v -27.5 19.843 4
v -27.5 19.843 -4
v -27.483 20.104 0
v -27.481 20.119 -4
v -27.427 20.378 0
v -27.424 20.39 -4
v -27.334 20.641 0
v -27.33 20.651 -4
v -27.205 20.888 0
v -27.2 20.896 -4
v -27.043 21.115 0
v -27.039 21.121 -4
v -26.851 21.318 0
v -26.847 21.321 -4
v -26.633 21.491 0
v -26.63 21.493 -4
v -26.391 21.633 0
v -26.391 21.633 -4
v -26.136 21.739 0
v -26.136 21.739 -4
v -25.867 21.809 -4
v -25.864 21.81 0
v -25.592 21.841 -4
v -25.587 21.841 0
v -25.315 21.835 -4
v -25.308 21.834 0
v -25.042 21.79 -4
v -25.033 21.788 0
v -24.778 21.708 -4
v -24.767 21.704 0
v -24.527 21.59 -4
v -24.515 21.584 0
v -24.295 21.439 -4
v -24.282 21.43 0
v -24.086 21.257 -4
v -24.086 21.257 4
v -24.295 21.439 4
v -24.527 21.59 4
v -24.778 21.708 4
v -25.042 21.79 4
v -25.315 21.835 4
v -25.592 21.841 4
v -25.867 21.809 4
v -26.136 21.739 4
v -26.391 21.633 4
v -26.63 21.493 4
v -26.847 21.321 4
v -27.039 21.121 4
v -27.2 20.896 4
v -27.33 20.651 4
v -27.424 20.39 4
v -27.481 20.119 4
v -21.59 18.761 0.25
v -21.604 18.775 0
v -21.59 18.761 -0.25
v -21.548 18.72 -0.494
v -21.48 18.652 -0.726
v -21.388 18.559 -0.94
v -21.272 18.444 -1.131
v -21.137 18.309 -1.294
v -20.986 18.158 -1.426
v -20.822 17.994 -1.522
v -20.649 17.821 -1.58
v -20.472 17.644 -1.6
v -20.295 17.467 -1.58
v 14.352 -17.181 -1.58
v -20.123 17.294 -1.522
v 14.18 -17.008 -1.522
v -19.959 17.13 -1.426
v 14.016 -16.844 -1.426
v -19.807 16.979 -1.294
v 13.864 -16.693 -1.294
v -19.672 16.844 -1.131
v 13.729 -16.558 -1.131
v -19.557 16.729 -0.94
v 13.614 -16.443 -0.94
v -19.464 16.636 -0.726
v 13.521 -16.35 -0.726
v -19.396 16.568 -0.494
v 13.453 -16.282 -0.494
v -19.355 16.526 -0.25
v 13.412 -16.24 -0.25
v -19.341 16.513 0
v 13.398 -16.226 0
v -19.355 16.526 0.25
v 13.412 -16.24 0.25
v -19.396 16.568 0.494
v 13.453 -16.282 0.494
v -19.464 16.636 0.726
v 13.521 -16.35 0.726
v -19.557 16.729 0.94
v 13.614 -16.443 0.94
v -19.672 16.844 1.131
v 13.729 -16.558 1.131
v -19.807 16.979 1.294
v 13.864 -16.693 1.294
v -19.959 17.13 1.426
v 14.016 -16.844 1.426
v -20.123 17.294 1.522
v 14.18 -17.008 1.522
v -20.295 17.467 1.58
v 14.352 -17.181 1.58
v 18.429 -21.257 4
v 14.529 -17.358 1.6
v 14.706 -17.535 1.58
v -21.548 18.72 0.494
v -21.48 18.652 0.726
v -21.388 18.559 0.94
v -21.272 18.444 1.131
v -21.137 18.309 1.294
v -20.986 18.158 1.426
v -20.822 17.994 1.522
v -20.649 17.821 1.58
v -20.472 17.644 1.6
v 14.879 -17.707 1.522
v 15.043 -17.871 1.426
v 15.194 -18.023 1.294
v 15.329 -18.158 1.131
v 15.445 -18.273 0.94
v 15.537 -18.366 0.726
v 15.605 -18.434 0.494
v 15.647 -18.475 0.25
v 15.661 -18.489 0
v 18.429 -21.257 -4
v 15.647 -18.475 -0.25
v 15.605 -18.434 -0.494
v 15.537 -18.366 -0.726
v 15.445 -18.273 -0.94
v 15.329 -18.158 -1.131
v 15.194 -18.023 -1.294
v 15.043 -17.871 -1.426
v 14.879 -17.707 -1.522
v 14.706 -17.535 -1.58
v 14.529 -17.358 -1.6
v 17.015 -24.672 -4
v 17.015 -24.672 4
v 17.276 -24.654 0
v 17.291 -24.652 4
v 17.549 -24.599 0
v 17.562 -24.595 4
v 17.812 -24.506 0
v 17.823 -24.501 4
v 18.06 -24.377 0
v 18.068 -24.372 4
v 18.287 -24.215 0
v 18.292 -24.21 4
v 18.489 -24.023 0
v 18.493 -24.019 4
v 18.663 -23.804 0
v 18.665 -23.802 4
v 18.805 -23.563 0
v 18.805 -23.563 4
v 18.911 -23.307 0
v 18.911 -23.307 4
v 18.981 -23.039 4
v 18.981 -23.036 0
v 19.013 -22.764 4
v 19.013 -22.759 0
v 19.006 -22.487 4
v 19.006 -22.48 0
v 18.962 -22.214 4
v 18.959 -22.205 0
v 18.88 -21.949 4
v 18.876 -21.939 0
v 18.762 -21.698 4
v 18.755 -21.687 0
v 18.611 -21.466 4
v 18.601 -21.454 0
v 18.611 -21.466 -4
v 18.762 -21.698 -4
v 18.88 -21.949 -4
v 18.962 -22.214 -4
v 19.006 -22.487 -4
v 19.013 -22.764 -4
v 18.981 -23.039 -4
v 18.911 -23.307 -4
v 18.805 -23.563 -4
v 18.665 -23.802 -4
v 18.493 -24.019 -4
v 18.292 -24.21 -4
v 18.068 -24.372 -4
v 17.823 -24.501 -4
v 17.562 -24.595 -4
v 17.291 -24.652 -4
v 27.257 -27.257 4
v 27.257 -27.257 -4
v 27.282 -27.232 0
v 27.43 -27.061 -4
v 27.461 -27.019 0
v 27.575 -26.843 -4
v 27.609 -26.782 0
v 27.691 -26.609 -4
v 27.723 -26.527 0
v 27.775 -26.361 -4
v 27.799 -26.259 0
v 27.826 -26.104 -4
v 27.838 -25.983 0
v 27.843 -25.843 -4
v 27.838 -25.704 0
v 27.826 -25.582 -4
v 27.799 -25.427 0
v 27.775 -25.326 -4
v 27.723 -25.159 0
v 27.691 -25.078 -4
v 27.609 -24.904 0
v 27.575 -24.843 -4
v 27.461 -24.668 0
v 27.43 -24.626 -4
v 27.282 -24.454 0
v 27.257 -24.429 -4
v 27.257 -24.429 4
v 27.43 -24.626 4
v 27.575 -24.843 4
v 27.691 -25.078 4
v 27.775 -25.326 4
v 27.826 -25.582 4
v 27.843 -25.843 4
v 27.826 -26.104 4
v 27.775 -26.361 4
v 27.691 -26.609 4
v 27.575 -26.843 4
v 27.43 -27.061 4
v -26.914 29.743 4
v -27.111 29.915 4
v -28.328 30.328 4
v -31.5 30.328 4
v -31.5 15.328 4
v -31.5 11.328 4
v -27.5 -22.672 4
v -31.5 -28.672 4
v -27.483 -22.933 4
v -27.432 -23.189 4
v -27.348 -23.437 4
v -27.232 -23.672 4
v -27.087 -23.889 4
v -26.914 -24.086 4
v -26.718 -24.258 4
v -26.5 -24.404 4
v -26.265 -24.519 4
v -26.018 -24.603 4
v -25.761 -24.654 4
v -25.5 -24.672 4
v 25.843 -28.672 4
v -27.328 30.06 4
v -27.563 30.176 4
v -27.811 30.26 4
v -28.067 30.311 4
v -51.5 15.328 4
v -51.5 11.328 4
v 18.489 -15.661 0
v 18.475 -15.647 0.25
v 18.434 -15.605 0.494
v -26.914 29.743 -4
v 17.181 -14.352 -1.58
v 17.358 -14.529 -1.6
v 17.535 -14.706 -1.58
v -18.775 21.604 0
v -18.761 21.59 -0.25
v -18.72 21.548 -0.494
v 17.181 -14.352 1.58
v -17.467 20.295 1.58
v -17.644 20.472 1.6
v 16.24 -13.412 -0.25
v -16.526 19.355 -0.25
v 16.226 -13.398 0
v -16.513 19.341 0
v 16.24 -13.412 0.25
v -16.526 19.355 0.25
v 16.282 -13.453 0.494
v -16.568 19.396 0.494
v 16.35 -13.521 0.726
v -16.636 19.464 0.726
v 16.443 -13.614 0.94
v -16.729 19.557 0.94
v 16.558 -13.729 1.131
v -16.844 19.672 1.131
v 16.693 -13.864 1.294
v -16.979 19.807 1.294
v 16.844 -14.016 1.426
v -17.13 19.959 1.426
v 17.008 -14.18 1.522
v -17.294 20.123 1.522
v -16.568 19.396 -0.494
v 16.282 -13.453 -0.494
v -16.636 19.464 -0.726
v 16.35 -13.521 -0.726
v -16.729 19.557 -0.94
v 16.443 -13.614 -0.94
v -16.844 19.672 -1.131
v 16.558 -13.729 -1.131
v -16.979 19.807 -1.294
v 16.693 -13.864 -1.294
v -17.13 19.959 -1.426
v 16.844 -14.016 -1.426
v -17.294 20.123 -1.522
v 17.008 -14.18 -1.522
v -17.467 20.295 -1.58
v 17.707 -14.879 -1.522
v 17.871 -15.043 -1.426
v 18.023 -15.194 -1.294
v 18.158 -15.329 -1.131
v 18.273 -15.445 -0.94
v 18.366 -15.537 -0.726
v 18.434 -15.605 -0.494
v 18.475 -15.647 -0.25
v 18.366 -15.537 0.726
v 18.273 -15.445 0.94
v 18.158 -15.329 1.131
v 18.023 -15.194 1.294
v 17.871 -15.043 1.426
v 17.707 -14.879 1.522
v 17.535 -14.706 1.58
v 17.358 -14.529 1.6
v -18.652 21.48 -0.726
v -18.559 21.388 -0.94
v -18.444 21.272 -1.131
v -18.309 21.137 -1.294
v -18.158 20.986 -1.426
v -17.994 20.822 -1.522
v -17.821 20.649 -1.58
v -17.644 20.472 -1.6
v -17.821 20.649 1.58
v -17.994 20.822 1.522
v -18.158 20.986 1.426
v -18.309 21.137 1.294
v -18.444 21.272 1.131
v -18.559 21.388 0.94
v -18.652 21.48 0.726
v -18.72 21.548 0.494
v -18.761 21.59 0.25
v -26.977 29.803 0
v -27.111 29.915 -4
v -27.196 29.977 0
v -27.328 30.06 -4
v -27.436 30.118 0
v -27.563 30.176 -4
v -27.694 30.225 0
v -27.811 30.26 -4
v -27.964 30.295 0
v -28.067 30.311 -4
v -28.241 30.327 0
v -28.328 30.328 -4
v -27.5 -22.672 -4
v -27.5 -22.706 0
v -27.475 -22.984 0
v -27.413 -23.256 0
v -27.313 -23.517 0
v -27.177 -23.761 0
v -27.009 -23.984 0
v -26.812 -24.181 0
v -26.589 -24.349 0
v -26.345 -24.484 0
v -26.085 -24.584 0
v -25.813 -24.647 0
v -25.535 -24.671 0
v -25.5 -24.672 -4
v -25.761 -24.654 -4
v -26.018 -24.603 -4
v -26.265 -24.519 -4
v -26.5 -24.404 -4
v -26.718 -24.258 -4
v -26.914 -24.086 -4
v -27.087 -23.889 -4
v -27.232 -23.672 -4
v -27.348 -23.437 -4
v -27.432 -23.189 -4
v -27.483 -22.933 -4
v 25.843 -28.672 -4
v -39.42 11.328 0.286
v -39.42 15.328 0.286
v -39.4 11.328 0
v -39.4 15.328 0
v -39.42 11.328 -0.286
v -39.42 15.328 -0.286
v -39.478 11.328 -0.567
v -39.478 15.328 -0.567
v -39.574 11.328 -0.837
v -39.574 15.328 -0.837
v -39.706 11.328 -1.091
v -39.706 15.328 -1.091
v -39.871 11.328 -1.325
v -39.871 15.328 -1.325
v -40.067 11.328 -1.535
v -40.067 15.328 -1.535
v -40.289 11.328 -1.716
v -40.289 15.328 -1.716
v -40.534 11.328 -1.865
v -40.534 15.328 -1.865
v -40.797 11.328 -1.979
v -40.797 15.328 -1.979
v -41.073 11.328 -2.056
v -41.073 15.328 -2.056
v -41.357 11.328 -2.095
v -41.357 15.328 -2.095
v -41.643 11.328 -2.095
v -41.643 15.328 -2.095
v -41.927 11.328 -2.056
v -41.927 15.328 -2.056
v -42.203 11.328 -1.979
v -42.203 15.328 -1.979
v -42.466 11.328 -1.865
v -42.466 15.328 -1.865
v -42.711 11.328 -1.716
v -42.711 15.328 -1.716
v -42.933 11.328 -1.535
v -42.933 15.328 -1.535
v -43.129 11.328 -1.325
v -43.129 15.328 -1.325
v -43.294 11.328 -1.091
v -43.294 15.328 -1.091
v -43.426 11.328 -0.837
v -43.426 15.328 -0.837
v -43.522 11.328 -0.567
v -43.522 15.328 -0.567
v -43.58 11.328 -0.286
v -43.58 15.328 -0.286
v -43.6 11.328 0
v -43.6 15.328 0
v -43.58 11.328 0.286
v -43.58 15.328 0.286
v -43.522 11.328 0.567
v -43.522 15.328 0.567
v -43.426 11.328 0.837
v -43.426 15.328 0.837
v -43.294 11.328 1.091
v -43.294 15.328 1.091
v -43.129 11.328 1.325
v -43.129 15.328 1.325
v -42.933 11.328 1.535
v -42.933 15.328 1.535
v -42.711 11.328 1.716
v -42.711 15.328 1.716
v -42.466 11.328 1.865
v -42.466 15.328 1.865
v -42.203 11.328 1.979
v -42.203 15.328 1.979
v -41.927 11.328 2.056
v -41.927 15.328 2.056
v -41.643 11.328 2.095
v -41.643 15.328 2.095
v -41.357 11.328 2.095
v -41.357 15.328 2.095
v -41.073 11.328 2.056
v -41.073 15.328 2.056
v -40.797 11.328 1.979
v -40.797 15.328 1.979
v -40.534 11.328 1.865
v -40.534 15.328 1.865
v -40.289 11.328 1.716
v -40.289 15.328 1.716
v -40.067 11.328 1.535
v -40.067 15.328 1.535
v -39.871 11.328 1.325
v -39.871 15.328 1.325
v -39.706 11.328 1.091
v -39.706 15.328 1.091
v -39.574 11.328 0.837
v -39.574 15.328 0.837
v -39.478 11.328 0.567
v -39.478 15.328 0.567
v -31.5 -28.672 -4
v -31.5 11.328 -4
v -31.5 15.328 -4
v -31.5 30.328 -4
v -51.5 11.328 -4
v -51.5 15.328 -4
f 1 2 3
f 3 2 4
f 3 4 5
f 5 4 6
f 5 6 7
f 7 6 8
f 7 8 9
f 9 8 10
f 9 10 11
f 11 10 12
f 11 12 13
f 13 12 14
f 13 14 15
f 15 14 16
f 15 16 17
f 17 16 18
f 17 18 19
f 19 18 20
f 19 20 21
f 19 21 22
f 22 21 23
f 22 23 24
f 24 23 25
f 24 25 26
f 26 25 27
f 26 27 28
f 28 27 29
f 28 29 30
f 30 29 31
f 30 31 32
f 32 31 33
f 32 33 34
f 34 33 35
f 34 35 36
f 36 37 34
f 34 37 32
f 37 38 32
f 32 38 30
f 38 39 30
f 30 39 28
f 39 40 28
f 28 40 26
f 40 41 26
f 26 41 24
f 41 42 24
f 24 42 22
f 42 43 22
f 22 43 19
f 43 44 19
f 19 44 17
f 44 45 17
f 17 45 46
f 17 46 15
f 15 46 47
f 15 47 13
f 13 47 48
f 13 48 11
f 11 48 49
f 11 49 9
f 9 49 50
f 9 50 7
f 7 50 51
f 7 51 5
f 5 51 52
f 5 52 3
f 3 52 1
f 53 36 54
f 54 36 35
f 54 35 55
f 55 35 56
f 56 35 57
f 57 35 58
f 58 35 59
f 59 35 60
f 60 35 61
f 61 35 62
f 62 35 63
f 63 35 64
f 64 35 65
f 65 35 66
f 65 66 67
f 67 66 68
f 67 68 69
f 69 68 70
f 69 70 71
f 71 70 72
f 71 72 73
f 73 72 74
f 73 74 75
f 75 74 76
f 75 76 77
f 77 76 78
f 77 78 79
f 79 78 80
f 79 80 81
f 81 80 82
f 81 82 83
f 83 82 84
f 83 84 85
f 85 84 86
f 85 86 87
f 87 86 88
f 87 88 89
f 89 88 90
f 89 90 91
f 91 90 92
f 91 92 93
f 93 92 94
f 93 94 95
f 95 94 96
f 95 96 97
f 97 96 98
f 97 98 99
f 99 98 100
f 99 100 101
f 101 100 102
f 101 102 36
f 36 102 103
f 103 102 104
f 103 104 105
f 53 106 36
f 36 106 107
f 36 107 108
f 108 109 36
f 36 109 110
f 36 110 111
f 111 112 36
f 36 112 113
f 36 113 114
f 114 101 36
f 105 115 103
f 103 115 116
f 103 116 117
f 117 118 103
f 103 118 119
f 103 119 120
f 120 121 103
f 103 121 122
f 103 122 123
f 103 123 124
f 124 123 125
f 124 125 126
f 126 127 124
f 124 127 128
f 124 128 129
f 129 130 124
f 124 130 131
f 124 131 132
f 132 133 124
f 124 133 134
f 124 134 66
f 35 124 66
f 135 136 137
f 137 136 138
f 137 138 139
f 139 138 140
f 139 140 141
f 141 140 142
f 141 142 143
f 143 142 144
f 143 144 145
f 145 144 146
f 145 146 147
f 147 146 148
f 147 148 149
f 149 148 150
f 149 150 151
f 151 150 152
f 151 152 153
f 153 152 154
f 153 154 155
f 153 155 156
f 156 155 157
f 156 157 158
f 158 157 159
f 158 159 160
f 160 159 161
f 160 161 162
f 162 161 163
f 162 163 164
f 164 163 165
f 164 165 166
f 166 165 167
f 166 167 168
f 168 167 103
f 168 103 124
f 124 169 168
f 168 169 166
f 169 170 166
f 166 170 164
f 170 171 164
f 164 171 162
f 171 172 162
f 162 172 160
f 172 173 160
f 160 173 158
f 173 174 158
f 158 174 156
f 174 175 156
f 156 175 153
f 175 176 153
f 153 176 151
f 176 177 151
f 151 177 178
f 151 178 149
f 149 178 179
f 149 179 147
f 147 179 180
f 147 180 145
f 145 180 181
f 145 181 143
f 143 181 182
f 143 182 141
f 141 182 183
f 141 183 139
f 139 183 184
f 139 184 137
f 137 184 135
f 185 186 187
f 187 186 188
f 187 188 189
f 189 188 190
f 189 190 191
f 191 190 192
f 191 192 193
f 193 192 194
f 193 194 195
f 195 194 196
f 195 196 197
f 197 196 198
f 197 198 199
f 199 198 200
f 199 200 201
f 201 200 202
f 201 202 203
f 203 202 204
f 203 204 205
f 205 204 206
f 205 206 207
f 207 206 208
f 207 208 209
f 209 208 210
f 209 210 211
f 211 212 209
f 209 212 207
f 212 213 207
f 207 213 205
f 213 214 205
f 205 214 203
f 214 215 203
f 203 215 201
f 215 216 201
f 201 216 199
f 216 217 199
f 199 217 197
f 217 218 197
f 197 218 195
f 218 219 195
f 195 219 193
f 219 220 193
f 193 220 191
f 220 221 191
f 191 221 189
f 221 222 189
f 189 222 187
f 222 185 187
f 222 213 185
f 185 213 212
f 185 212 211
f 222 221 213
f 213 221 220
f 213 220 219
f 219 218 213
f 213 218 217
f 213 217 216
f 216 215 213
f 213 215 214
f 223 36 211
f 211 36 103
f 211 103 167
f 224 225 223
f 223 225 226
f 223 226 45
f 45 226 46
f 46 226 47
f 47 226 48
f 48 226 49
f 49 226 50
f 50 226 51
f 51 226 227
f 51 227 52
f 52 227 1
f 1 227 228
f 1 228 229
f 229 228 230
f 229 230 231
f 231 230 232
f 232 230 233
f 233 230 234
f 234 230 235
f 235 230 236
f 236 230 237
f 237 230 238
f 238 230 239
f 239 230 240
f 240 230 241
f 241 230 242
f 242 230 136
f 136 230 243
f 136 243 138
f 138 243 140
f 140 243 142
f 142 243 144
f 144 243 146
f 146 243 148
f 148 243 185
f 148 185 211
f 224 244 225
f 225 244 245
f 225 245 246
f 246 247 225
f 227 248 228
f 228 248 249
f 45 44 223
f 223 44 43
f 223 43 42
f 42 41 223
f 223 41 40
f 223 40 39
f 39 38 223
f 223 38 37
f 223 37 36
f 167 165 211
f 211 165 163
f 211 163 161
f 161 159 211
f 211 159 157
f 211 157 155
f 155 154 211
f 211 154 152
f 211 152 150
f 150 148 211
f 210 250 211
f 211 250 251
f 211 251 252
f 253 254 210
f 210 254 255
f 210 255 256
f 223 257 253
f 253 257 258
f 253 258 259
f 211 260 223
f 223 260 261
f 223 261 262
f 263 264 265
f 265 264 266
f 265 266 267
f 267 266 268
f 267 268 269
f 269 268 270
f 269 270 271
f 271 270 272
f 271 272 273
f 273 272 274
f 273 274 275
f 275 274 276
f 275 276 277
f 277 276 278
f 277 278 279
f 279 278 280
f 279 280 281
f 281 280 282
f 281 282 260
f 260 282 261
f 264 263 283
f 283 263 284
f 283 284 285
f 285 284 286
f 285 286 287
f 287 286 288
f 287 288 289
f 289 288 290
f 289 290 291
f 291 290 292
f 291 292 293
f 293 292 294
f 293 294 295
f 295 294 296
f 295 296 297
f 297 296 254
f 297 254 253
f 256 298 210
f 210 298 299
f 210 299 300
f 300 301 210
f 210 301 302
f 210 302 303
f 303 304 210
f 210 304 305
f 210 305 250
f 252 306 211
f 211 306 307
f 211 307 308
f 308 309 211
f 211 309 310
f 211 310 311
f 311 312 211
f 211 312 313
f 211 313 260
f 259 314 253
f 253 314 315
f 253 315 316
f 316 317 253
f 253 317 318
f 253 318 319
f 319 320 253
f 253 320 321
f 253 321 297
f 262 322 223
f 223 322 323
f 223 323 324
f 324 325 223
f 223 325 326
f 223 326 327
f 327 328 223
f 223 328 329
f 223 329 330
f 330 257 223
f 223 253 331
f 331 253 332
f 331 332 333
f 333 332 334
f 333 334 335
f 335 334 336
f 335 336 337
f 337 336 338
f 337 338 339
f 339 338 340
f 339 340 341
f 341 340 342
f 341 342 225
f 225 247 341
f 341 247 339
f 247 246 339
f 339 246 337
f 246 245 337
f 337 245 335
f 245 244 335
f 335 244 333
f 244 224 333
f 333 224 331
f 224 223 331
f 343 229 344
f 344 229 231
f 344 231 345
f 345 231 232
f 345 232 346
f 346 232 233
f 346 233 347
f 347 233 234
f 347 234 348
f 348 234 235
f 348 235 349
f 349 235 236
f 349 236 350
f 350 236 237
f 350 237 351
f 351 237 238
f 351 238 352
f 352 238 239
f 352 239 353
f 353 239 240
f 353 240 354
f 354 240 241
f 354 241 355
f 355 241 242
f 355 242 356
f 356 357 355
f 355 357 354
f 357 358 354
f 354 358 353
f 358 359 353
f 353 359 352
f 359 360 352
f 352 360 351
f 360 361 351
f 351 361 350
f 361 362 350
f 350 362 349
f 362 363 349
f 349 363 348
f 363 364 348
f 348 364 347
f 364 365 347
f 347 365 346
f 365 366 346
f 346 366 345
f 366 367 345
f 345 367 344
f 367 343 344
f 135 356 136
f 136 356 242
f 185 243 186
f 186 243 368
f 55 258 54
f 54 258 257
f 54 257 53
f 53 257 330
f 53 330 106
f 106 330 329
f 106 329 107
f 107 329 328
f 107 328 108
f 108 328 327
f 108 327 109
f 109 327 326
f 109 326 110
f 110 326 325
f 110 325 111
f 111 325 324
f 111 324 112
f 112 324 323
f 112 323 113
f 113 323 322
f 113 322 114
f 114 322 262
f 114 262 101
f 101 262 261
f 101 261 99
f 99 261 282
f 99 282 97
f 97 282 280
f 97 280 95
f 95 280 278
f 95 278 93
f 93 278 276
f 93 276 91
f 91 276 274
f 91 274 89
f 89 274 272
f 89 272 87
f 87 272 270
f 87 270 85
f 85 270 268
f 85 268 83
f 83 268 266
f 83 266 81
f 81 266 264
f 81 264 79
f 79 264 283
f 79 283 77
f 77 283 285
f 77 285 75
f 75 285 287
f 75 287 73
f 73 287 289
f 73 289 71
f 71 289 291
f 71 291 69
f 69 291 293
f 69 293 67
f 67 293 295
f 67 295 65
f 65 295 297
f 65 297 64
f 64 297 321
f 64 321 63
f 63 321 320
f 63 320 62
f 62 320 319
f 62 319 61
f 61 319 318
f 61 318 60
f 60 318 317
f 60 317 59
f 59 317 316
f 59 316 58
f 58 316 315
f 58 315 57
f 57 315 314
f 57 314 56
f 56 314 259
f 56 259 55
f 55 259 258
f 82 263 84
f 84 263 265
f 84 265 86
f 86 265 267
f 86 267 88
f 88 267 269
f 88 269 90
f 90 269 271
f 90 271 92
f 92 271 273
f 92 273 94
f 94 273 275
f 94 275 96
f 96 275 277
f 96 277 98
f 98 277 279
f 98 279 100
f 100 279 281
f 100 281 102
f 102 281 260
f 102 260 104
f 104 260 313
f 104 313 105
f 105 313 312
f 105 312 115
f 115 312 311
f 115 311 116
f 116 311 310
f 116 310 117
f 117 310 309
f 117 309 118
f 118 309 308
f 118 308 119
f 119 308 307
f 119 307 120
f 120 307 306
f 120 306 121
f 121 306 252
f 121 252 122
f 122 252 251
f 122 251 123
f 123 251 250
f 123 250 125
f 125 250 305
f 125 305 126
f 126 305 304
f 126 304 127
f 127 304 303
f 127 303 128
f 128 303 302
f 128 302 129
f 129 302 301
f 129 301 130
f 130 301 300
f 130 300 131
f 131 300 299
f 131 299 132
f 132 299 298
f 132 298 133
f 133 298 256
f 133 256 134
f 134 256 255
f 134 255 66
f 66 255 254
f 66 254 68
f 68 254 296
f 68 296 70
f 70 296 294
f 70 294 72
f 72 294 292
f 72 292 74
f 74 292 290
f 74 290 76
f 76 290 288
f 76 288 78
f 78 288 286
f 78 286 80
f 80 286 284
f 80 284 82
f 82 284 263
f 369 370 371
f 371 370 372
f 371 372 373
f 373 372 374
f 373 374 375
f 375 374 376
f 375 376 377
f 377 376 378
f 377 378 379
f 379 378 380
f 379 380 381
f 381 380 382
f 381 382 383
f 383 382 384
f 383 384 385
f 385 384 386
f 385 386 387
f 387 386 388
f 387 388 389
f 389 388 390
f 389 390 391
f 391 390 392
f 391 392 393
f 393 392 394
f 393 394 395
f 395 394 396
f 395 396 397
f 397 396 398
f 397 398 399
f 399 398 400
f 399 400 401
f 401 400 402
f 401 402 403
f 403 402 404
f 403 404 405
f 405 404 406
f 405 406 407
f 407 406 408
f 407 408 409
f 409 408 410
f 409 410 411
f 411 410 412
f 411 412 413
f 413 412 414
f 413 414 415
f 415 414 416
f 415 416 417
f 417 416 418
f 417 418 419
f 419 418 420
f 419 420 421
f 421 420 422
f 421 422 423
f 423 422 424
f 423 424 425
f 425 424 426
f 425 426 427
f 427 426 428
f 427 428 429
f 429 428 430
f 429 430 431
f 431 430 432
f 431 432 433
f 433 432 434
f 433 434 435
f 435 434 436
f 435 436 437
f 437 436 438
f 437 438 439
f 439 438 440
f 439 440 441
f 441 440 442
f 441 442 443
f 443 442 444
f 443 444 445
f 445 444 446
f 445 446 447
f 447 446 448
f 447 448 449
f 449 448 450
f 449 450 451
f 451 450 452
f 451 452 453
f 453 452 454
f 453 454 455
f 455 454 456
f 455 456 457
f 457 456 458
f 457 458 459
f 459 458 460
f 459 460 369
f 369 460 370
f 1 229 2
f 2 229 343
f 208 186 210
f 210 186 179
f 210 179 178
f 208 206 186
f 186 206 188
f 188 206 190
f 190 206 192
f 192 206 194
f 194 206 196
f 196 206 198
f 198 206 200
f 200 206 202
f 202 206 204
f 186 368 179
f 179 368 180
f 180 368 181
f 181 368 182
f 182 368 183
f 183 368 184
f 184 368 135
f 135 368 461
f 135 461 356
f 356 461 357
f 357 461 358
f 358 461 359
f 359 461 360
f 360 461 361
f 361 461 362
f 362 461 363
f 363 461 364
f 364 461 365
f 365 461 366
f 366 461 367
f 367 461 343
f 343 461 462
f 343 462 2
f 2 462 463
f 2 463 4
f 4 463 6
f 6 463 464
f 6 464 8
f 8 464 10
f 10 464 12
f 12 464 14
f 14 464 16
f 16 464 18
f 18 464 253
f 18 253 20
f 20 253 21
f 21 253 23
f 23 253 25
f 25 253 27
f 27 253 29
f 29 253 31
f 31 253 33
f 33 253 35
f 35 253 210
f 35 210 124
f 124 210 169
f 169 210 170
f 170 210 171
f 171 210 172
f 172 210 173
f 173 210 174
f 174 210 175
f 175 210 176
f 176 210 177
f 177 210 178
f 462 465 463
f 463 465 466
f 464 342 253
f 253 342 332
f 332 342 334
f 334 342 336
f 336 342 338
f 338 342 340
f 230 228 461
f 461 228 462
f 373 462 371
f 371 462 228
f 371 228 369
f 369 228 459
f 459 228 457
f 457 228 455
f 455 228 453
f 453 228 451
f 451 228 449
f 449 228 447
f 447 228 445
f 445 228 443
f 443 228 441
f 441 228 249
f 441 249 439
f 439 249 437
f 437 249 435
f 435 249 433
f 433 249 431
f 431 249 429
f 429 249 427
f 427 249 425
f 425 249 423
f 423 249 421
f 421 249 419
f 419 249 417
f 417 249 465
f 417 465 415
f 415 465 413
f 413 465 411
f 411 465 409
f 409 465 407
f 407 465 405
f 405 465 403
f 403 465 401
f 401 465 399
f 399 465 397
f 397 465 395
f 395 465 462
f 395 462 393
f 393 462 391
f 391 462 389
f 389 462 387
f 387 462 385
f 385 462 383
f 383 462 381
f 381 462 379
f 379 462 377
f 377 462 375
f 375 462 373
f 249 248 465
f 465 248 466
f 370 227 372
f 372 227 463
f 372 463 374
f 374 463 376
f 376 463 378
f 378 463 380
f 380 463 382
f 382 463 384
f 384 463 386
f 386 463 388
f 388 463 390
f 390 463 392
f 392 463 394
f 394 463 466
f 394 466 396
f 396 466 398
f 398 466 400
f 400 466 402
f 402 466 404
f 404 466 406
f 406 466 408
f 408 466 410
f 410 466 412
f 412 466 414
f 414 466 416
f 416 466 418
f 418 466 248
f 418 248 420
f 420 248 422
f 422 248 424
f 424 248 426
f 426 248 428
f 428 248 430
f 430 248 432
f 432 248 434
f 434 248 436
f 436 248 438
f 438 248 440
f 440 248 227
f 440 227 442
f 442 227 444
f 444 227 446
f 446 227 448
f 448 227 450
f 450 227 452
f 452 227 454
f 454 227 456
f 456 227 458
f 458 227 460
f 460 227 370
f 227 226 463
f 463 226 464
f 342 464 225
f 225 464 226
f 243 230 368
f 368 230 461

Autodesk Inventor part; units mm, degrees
ref_plane "YZ Plane" through (0, 0, 0) normal (1, 0, 0) x (0, 1, 0)
ref_plane "XZ Plane" through (0, 0, 0) normal (0, 1, 0) x (-1, 0, 0)
ref_plane "XY Plane" through (0, 0, 0) normal (0, 0, 1) x (1, 0, 0)
sketch "Sketch1" plane through (0, 0, 0) normal (0, 0, 1) x (1, 0, 0)
  line L0 (-27.5, 24.6716) -> (21.8431, -24.6716)
  line L1 (31.5, -28.6716) -> (-27.5, 30.3284)
  line L2 (-27.5, 30.3284) -> (-31.5, 30.3284)
  line L3 (31.5, -28.6716) -> (-31.5, -28.6716)
  line L4 (-27.5, -24.6716) -> (21.8431, -24.6716)
  line L5 (-27.5, 24.6716) -> (-27.5, -24.6716)
  line L6 (-31.5, 15.3284) -> (-51.5, 15.3284)
  line L7 (-51.5, 15.3284) -> (-51.5, 11.3284)
  line L8 (-51.5, 11.3284) -> (-31.5, 11.3284)
  line L9 (-31.5, 30.3284) -> (-31.5, 15.3284)
  line L10 (-31.5, 11.3284) -> (-31.5, -28.6716)
  point P0 (0, 0)
  point P1 (-27.5, 0)
  point P2 (0, -28.6716)
  dimension "d0" = 4
  dimension "d19" = 4
  dimension "d22" = 20
  dimension "d23" = 4
  dimension "d25" = 45
  dimension "d28" = 83.4386
  dimension "d29" = 4
  dimension "d30" = 4
  dimension "d35" = 40
extrude "Extrusion1" add sketch "Sketch1" along normal mid plane 8
sketch "Sketch5" plane through (-51.5, 15.3284, -4) normal (0, 1, 0) x (1, 0, 0)
  line L0 (20, -8) -> (20, 0) projected
  line L1 (0, 0) -> (20, 0) projected
  line L2 (0, -8) -> (0, 0) projected
  line L3 (20, -8) -> (0, -8) projected
  circle A0 centre (10, -4) radius 2.1
  point P0 (51.5, -4)
  point P1 (0, -4)
  dimension "d31" = 4.2
  dimension "d32" = 10
extrude "Extrusion4" cut sketch "Sketch5" against normal through all contours A0
sketch "Sketch6" plane through (-27.5, 30.3284, -4) normal (0.7071, 0.7071, 0) x (-0.7071, 0.7071, 0)
  circle A0 centre (-13.9386, 4) radius 1.6
  circle A1 centre (-63.4386, 4) radius 1.6
  line L0 (-83.4386, 0) -> (-83.4386, 8) projected
  point P0 (-40.8909, 4)
  point P1 (-83.4386, 4)
  dimension "d36" = 49.5
  dimension "d37" = 20
  dimension "d38" = 3.2
extrude "Extrusion5" cut sketch "Sketch6" against normal blind 6
sketch "Sketch7" plane through (0, 0, 4) normal (0, 0, 1) x (1, 0, 0)
  line L0 (31.5, -28.6716) -> (-27.5, 30.3284) projected
  line L1 (-31.5, -28.6716) -> (31.5, -28.6716) projected
  line L2 (28.6716, -25.8431) -> (25.8431, -28.6716)
  line L3 (25.8431, -28.6716) -> (31.5, -28.6716)
  line L4 (28.6716, -25.8431) -> (31.5, -28.6716)
  point P0 (0, 0)
  dimension "d42" = 4
extrude "Extrusion6" cut sketch "Sketch7" against normal through all
fillet "Fillet1" radius 2 5 edges at (-27.5, -24.6716, 0) (-27.5, 30.3284, 0) (28.6716, -25.8431, 0) (21.8431, -24.6716, 0) (-27.5, 24.6716, 0)
properties part number "holder-LCD-v2"
